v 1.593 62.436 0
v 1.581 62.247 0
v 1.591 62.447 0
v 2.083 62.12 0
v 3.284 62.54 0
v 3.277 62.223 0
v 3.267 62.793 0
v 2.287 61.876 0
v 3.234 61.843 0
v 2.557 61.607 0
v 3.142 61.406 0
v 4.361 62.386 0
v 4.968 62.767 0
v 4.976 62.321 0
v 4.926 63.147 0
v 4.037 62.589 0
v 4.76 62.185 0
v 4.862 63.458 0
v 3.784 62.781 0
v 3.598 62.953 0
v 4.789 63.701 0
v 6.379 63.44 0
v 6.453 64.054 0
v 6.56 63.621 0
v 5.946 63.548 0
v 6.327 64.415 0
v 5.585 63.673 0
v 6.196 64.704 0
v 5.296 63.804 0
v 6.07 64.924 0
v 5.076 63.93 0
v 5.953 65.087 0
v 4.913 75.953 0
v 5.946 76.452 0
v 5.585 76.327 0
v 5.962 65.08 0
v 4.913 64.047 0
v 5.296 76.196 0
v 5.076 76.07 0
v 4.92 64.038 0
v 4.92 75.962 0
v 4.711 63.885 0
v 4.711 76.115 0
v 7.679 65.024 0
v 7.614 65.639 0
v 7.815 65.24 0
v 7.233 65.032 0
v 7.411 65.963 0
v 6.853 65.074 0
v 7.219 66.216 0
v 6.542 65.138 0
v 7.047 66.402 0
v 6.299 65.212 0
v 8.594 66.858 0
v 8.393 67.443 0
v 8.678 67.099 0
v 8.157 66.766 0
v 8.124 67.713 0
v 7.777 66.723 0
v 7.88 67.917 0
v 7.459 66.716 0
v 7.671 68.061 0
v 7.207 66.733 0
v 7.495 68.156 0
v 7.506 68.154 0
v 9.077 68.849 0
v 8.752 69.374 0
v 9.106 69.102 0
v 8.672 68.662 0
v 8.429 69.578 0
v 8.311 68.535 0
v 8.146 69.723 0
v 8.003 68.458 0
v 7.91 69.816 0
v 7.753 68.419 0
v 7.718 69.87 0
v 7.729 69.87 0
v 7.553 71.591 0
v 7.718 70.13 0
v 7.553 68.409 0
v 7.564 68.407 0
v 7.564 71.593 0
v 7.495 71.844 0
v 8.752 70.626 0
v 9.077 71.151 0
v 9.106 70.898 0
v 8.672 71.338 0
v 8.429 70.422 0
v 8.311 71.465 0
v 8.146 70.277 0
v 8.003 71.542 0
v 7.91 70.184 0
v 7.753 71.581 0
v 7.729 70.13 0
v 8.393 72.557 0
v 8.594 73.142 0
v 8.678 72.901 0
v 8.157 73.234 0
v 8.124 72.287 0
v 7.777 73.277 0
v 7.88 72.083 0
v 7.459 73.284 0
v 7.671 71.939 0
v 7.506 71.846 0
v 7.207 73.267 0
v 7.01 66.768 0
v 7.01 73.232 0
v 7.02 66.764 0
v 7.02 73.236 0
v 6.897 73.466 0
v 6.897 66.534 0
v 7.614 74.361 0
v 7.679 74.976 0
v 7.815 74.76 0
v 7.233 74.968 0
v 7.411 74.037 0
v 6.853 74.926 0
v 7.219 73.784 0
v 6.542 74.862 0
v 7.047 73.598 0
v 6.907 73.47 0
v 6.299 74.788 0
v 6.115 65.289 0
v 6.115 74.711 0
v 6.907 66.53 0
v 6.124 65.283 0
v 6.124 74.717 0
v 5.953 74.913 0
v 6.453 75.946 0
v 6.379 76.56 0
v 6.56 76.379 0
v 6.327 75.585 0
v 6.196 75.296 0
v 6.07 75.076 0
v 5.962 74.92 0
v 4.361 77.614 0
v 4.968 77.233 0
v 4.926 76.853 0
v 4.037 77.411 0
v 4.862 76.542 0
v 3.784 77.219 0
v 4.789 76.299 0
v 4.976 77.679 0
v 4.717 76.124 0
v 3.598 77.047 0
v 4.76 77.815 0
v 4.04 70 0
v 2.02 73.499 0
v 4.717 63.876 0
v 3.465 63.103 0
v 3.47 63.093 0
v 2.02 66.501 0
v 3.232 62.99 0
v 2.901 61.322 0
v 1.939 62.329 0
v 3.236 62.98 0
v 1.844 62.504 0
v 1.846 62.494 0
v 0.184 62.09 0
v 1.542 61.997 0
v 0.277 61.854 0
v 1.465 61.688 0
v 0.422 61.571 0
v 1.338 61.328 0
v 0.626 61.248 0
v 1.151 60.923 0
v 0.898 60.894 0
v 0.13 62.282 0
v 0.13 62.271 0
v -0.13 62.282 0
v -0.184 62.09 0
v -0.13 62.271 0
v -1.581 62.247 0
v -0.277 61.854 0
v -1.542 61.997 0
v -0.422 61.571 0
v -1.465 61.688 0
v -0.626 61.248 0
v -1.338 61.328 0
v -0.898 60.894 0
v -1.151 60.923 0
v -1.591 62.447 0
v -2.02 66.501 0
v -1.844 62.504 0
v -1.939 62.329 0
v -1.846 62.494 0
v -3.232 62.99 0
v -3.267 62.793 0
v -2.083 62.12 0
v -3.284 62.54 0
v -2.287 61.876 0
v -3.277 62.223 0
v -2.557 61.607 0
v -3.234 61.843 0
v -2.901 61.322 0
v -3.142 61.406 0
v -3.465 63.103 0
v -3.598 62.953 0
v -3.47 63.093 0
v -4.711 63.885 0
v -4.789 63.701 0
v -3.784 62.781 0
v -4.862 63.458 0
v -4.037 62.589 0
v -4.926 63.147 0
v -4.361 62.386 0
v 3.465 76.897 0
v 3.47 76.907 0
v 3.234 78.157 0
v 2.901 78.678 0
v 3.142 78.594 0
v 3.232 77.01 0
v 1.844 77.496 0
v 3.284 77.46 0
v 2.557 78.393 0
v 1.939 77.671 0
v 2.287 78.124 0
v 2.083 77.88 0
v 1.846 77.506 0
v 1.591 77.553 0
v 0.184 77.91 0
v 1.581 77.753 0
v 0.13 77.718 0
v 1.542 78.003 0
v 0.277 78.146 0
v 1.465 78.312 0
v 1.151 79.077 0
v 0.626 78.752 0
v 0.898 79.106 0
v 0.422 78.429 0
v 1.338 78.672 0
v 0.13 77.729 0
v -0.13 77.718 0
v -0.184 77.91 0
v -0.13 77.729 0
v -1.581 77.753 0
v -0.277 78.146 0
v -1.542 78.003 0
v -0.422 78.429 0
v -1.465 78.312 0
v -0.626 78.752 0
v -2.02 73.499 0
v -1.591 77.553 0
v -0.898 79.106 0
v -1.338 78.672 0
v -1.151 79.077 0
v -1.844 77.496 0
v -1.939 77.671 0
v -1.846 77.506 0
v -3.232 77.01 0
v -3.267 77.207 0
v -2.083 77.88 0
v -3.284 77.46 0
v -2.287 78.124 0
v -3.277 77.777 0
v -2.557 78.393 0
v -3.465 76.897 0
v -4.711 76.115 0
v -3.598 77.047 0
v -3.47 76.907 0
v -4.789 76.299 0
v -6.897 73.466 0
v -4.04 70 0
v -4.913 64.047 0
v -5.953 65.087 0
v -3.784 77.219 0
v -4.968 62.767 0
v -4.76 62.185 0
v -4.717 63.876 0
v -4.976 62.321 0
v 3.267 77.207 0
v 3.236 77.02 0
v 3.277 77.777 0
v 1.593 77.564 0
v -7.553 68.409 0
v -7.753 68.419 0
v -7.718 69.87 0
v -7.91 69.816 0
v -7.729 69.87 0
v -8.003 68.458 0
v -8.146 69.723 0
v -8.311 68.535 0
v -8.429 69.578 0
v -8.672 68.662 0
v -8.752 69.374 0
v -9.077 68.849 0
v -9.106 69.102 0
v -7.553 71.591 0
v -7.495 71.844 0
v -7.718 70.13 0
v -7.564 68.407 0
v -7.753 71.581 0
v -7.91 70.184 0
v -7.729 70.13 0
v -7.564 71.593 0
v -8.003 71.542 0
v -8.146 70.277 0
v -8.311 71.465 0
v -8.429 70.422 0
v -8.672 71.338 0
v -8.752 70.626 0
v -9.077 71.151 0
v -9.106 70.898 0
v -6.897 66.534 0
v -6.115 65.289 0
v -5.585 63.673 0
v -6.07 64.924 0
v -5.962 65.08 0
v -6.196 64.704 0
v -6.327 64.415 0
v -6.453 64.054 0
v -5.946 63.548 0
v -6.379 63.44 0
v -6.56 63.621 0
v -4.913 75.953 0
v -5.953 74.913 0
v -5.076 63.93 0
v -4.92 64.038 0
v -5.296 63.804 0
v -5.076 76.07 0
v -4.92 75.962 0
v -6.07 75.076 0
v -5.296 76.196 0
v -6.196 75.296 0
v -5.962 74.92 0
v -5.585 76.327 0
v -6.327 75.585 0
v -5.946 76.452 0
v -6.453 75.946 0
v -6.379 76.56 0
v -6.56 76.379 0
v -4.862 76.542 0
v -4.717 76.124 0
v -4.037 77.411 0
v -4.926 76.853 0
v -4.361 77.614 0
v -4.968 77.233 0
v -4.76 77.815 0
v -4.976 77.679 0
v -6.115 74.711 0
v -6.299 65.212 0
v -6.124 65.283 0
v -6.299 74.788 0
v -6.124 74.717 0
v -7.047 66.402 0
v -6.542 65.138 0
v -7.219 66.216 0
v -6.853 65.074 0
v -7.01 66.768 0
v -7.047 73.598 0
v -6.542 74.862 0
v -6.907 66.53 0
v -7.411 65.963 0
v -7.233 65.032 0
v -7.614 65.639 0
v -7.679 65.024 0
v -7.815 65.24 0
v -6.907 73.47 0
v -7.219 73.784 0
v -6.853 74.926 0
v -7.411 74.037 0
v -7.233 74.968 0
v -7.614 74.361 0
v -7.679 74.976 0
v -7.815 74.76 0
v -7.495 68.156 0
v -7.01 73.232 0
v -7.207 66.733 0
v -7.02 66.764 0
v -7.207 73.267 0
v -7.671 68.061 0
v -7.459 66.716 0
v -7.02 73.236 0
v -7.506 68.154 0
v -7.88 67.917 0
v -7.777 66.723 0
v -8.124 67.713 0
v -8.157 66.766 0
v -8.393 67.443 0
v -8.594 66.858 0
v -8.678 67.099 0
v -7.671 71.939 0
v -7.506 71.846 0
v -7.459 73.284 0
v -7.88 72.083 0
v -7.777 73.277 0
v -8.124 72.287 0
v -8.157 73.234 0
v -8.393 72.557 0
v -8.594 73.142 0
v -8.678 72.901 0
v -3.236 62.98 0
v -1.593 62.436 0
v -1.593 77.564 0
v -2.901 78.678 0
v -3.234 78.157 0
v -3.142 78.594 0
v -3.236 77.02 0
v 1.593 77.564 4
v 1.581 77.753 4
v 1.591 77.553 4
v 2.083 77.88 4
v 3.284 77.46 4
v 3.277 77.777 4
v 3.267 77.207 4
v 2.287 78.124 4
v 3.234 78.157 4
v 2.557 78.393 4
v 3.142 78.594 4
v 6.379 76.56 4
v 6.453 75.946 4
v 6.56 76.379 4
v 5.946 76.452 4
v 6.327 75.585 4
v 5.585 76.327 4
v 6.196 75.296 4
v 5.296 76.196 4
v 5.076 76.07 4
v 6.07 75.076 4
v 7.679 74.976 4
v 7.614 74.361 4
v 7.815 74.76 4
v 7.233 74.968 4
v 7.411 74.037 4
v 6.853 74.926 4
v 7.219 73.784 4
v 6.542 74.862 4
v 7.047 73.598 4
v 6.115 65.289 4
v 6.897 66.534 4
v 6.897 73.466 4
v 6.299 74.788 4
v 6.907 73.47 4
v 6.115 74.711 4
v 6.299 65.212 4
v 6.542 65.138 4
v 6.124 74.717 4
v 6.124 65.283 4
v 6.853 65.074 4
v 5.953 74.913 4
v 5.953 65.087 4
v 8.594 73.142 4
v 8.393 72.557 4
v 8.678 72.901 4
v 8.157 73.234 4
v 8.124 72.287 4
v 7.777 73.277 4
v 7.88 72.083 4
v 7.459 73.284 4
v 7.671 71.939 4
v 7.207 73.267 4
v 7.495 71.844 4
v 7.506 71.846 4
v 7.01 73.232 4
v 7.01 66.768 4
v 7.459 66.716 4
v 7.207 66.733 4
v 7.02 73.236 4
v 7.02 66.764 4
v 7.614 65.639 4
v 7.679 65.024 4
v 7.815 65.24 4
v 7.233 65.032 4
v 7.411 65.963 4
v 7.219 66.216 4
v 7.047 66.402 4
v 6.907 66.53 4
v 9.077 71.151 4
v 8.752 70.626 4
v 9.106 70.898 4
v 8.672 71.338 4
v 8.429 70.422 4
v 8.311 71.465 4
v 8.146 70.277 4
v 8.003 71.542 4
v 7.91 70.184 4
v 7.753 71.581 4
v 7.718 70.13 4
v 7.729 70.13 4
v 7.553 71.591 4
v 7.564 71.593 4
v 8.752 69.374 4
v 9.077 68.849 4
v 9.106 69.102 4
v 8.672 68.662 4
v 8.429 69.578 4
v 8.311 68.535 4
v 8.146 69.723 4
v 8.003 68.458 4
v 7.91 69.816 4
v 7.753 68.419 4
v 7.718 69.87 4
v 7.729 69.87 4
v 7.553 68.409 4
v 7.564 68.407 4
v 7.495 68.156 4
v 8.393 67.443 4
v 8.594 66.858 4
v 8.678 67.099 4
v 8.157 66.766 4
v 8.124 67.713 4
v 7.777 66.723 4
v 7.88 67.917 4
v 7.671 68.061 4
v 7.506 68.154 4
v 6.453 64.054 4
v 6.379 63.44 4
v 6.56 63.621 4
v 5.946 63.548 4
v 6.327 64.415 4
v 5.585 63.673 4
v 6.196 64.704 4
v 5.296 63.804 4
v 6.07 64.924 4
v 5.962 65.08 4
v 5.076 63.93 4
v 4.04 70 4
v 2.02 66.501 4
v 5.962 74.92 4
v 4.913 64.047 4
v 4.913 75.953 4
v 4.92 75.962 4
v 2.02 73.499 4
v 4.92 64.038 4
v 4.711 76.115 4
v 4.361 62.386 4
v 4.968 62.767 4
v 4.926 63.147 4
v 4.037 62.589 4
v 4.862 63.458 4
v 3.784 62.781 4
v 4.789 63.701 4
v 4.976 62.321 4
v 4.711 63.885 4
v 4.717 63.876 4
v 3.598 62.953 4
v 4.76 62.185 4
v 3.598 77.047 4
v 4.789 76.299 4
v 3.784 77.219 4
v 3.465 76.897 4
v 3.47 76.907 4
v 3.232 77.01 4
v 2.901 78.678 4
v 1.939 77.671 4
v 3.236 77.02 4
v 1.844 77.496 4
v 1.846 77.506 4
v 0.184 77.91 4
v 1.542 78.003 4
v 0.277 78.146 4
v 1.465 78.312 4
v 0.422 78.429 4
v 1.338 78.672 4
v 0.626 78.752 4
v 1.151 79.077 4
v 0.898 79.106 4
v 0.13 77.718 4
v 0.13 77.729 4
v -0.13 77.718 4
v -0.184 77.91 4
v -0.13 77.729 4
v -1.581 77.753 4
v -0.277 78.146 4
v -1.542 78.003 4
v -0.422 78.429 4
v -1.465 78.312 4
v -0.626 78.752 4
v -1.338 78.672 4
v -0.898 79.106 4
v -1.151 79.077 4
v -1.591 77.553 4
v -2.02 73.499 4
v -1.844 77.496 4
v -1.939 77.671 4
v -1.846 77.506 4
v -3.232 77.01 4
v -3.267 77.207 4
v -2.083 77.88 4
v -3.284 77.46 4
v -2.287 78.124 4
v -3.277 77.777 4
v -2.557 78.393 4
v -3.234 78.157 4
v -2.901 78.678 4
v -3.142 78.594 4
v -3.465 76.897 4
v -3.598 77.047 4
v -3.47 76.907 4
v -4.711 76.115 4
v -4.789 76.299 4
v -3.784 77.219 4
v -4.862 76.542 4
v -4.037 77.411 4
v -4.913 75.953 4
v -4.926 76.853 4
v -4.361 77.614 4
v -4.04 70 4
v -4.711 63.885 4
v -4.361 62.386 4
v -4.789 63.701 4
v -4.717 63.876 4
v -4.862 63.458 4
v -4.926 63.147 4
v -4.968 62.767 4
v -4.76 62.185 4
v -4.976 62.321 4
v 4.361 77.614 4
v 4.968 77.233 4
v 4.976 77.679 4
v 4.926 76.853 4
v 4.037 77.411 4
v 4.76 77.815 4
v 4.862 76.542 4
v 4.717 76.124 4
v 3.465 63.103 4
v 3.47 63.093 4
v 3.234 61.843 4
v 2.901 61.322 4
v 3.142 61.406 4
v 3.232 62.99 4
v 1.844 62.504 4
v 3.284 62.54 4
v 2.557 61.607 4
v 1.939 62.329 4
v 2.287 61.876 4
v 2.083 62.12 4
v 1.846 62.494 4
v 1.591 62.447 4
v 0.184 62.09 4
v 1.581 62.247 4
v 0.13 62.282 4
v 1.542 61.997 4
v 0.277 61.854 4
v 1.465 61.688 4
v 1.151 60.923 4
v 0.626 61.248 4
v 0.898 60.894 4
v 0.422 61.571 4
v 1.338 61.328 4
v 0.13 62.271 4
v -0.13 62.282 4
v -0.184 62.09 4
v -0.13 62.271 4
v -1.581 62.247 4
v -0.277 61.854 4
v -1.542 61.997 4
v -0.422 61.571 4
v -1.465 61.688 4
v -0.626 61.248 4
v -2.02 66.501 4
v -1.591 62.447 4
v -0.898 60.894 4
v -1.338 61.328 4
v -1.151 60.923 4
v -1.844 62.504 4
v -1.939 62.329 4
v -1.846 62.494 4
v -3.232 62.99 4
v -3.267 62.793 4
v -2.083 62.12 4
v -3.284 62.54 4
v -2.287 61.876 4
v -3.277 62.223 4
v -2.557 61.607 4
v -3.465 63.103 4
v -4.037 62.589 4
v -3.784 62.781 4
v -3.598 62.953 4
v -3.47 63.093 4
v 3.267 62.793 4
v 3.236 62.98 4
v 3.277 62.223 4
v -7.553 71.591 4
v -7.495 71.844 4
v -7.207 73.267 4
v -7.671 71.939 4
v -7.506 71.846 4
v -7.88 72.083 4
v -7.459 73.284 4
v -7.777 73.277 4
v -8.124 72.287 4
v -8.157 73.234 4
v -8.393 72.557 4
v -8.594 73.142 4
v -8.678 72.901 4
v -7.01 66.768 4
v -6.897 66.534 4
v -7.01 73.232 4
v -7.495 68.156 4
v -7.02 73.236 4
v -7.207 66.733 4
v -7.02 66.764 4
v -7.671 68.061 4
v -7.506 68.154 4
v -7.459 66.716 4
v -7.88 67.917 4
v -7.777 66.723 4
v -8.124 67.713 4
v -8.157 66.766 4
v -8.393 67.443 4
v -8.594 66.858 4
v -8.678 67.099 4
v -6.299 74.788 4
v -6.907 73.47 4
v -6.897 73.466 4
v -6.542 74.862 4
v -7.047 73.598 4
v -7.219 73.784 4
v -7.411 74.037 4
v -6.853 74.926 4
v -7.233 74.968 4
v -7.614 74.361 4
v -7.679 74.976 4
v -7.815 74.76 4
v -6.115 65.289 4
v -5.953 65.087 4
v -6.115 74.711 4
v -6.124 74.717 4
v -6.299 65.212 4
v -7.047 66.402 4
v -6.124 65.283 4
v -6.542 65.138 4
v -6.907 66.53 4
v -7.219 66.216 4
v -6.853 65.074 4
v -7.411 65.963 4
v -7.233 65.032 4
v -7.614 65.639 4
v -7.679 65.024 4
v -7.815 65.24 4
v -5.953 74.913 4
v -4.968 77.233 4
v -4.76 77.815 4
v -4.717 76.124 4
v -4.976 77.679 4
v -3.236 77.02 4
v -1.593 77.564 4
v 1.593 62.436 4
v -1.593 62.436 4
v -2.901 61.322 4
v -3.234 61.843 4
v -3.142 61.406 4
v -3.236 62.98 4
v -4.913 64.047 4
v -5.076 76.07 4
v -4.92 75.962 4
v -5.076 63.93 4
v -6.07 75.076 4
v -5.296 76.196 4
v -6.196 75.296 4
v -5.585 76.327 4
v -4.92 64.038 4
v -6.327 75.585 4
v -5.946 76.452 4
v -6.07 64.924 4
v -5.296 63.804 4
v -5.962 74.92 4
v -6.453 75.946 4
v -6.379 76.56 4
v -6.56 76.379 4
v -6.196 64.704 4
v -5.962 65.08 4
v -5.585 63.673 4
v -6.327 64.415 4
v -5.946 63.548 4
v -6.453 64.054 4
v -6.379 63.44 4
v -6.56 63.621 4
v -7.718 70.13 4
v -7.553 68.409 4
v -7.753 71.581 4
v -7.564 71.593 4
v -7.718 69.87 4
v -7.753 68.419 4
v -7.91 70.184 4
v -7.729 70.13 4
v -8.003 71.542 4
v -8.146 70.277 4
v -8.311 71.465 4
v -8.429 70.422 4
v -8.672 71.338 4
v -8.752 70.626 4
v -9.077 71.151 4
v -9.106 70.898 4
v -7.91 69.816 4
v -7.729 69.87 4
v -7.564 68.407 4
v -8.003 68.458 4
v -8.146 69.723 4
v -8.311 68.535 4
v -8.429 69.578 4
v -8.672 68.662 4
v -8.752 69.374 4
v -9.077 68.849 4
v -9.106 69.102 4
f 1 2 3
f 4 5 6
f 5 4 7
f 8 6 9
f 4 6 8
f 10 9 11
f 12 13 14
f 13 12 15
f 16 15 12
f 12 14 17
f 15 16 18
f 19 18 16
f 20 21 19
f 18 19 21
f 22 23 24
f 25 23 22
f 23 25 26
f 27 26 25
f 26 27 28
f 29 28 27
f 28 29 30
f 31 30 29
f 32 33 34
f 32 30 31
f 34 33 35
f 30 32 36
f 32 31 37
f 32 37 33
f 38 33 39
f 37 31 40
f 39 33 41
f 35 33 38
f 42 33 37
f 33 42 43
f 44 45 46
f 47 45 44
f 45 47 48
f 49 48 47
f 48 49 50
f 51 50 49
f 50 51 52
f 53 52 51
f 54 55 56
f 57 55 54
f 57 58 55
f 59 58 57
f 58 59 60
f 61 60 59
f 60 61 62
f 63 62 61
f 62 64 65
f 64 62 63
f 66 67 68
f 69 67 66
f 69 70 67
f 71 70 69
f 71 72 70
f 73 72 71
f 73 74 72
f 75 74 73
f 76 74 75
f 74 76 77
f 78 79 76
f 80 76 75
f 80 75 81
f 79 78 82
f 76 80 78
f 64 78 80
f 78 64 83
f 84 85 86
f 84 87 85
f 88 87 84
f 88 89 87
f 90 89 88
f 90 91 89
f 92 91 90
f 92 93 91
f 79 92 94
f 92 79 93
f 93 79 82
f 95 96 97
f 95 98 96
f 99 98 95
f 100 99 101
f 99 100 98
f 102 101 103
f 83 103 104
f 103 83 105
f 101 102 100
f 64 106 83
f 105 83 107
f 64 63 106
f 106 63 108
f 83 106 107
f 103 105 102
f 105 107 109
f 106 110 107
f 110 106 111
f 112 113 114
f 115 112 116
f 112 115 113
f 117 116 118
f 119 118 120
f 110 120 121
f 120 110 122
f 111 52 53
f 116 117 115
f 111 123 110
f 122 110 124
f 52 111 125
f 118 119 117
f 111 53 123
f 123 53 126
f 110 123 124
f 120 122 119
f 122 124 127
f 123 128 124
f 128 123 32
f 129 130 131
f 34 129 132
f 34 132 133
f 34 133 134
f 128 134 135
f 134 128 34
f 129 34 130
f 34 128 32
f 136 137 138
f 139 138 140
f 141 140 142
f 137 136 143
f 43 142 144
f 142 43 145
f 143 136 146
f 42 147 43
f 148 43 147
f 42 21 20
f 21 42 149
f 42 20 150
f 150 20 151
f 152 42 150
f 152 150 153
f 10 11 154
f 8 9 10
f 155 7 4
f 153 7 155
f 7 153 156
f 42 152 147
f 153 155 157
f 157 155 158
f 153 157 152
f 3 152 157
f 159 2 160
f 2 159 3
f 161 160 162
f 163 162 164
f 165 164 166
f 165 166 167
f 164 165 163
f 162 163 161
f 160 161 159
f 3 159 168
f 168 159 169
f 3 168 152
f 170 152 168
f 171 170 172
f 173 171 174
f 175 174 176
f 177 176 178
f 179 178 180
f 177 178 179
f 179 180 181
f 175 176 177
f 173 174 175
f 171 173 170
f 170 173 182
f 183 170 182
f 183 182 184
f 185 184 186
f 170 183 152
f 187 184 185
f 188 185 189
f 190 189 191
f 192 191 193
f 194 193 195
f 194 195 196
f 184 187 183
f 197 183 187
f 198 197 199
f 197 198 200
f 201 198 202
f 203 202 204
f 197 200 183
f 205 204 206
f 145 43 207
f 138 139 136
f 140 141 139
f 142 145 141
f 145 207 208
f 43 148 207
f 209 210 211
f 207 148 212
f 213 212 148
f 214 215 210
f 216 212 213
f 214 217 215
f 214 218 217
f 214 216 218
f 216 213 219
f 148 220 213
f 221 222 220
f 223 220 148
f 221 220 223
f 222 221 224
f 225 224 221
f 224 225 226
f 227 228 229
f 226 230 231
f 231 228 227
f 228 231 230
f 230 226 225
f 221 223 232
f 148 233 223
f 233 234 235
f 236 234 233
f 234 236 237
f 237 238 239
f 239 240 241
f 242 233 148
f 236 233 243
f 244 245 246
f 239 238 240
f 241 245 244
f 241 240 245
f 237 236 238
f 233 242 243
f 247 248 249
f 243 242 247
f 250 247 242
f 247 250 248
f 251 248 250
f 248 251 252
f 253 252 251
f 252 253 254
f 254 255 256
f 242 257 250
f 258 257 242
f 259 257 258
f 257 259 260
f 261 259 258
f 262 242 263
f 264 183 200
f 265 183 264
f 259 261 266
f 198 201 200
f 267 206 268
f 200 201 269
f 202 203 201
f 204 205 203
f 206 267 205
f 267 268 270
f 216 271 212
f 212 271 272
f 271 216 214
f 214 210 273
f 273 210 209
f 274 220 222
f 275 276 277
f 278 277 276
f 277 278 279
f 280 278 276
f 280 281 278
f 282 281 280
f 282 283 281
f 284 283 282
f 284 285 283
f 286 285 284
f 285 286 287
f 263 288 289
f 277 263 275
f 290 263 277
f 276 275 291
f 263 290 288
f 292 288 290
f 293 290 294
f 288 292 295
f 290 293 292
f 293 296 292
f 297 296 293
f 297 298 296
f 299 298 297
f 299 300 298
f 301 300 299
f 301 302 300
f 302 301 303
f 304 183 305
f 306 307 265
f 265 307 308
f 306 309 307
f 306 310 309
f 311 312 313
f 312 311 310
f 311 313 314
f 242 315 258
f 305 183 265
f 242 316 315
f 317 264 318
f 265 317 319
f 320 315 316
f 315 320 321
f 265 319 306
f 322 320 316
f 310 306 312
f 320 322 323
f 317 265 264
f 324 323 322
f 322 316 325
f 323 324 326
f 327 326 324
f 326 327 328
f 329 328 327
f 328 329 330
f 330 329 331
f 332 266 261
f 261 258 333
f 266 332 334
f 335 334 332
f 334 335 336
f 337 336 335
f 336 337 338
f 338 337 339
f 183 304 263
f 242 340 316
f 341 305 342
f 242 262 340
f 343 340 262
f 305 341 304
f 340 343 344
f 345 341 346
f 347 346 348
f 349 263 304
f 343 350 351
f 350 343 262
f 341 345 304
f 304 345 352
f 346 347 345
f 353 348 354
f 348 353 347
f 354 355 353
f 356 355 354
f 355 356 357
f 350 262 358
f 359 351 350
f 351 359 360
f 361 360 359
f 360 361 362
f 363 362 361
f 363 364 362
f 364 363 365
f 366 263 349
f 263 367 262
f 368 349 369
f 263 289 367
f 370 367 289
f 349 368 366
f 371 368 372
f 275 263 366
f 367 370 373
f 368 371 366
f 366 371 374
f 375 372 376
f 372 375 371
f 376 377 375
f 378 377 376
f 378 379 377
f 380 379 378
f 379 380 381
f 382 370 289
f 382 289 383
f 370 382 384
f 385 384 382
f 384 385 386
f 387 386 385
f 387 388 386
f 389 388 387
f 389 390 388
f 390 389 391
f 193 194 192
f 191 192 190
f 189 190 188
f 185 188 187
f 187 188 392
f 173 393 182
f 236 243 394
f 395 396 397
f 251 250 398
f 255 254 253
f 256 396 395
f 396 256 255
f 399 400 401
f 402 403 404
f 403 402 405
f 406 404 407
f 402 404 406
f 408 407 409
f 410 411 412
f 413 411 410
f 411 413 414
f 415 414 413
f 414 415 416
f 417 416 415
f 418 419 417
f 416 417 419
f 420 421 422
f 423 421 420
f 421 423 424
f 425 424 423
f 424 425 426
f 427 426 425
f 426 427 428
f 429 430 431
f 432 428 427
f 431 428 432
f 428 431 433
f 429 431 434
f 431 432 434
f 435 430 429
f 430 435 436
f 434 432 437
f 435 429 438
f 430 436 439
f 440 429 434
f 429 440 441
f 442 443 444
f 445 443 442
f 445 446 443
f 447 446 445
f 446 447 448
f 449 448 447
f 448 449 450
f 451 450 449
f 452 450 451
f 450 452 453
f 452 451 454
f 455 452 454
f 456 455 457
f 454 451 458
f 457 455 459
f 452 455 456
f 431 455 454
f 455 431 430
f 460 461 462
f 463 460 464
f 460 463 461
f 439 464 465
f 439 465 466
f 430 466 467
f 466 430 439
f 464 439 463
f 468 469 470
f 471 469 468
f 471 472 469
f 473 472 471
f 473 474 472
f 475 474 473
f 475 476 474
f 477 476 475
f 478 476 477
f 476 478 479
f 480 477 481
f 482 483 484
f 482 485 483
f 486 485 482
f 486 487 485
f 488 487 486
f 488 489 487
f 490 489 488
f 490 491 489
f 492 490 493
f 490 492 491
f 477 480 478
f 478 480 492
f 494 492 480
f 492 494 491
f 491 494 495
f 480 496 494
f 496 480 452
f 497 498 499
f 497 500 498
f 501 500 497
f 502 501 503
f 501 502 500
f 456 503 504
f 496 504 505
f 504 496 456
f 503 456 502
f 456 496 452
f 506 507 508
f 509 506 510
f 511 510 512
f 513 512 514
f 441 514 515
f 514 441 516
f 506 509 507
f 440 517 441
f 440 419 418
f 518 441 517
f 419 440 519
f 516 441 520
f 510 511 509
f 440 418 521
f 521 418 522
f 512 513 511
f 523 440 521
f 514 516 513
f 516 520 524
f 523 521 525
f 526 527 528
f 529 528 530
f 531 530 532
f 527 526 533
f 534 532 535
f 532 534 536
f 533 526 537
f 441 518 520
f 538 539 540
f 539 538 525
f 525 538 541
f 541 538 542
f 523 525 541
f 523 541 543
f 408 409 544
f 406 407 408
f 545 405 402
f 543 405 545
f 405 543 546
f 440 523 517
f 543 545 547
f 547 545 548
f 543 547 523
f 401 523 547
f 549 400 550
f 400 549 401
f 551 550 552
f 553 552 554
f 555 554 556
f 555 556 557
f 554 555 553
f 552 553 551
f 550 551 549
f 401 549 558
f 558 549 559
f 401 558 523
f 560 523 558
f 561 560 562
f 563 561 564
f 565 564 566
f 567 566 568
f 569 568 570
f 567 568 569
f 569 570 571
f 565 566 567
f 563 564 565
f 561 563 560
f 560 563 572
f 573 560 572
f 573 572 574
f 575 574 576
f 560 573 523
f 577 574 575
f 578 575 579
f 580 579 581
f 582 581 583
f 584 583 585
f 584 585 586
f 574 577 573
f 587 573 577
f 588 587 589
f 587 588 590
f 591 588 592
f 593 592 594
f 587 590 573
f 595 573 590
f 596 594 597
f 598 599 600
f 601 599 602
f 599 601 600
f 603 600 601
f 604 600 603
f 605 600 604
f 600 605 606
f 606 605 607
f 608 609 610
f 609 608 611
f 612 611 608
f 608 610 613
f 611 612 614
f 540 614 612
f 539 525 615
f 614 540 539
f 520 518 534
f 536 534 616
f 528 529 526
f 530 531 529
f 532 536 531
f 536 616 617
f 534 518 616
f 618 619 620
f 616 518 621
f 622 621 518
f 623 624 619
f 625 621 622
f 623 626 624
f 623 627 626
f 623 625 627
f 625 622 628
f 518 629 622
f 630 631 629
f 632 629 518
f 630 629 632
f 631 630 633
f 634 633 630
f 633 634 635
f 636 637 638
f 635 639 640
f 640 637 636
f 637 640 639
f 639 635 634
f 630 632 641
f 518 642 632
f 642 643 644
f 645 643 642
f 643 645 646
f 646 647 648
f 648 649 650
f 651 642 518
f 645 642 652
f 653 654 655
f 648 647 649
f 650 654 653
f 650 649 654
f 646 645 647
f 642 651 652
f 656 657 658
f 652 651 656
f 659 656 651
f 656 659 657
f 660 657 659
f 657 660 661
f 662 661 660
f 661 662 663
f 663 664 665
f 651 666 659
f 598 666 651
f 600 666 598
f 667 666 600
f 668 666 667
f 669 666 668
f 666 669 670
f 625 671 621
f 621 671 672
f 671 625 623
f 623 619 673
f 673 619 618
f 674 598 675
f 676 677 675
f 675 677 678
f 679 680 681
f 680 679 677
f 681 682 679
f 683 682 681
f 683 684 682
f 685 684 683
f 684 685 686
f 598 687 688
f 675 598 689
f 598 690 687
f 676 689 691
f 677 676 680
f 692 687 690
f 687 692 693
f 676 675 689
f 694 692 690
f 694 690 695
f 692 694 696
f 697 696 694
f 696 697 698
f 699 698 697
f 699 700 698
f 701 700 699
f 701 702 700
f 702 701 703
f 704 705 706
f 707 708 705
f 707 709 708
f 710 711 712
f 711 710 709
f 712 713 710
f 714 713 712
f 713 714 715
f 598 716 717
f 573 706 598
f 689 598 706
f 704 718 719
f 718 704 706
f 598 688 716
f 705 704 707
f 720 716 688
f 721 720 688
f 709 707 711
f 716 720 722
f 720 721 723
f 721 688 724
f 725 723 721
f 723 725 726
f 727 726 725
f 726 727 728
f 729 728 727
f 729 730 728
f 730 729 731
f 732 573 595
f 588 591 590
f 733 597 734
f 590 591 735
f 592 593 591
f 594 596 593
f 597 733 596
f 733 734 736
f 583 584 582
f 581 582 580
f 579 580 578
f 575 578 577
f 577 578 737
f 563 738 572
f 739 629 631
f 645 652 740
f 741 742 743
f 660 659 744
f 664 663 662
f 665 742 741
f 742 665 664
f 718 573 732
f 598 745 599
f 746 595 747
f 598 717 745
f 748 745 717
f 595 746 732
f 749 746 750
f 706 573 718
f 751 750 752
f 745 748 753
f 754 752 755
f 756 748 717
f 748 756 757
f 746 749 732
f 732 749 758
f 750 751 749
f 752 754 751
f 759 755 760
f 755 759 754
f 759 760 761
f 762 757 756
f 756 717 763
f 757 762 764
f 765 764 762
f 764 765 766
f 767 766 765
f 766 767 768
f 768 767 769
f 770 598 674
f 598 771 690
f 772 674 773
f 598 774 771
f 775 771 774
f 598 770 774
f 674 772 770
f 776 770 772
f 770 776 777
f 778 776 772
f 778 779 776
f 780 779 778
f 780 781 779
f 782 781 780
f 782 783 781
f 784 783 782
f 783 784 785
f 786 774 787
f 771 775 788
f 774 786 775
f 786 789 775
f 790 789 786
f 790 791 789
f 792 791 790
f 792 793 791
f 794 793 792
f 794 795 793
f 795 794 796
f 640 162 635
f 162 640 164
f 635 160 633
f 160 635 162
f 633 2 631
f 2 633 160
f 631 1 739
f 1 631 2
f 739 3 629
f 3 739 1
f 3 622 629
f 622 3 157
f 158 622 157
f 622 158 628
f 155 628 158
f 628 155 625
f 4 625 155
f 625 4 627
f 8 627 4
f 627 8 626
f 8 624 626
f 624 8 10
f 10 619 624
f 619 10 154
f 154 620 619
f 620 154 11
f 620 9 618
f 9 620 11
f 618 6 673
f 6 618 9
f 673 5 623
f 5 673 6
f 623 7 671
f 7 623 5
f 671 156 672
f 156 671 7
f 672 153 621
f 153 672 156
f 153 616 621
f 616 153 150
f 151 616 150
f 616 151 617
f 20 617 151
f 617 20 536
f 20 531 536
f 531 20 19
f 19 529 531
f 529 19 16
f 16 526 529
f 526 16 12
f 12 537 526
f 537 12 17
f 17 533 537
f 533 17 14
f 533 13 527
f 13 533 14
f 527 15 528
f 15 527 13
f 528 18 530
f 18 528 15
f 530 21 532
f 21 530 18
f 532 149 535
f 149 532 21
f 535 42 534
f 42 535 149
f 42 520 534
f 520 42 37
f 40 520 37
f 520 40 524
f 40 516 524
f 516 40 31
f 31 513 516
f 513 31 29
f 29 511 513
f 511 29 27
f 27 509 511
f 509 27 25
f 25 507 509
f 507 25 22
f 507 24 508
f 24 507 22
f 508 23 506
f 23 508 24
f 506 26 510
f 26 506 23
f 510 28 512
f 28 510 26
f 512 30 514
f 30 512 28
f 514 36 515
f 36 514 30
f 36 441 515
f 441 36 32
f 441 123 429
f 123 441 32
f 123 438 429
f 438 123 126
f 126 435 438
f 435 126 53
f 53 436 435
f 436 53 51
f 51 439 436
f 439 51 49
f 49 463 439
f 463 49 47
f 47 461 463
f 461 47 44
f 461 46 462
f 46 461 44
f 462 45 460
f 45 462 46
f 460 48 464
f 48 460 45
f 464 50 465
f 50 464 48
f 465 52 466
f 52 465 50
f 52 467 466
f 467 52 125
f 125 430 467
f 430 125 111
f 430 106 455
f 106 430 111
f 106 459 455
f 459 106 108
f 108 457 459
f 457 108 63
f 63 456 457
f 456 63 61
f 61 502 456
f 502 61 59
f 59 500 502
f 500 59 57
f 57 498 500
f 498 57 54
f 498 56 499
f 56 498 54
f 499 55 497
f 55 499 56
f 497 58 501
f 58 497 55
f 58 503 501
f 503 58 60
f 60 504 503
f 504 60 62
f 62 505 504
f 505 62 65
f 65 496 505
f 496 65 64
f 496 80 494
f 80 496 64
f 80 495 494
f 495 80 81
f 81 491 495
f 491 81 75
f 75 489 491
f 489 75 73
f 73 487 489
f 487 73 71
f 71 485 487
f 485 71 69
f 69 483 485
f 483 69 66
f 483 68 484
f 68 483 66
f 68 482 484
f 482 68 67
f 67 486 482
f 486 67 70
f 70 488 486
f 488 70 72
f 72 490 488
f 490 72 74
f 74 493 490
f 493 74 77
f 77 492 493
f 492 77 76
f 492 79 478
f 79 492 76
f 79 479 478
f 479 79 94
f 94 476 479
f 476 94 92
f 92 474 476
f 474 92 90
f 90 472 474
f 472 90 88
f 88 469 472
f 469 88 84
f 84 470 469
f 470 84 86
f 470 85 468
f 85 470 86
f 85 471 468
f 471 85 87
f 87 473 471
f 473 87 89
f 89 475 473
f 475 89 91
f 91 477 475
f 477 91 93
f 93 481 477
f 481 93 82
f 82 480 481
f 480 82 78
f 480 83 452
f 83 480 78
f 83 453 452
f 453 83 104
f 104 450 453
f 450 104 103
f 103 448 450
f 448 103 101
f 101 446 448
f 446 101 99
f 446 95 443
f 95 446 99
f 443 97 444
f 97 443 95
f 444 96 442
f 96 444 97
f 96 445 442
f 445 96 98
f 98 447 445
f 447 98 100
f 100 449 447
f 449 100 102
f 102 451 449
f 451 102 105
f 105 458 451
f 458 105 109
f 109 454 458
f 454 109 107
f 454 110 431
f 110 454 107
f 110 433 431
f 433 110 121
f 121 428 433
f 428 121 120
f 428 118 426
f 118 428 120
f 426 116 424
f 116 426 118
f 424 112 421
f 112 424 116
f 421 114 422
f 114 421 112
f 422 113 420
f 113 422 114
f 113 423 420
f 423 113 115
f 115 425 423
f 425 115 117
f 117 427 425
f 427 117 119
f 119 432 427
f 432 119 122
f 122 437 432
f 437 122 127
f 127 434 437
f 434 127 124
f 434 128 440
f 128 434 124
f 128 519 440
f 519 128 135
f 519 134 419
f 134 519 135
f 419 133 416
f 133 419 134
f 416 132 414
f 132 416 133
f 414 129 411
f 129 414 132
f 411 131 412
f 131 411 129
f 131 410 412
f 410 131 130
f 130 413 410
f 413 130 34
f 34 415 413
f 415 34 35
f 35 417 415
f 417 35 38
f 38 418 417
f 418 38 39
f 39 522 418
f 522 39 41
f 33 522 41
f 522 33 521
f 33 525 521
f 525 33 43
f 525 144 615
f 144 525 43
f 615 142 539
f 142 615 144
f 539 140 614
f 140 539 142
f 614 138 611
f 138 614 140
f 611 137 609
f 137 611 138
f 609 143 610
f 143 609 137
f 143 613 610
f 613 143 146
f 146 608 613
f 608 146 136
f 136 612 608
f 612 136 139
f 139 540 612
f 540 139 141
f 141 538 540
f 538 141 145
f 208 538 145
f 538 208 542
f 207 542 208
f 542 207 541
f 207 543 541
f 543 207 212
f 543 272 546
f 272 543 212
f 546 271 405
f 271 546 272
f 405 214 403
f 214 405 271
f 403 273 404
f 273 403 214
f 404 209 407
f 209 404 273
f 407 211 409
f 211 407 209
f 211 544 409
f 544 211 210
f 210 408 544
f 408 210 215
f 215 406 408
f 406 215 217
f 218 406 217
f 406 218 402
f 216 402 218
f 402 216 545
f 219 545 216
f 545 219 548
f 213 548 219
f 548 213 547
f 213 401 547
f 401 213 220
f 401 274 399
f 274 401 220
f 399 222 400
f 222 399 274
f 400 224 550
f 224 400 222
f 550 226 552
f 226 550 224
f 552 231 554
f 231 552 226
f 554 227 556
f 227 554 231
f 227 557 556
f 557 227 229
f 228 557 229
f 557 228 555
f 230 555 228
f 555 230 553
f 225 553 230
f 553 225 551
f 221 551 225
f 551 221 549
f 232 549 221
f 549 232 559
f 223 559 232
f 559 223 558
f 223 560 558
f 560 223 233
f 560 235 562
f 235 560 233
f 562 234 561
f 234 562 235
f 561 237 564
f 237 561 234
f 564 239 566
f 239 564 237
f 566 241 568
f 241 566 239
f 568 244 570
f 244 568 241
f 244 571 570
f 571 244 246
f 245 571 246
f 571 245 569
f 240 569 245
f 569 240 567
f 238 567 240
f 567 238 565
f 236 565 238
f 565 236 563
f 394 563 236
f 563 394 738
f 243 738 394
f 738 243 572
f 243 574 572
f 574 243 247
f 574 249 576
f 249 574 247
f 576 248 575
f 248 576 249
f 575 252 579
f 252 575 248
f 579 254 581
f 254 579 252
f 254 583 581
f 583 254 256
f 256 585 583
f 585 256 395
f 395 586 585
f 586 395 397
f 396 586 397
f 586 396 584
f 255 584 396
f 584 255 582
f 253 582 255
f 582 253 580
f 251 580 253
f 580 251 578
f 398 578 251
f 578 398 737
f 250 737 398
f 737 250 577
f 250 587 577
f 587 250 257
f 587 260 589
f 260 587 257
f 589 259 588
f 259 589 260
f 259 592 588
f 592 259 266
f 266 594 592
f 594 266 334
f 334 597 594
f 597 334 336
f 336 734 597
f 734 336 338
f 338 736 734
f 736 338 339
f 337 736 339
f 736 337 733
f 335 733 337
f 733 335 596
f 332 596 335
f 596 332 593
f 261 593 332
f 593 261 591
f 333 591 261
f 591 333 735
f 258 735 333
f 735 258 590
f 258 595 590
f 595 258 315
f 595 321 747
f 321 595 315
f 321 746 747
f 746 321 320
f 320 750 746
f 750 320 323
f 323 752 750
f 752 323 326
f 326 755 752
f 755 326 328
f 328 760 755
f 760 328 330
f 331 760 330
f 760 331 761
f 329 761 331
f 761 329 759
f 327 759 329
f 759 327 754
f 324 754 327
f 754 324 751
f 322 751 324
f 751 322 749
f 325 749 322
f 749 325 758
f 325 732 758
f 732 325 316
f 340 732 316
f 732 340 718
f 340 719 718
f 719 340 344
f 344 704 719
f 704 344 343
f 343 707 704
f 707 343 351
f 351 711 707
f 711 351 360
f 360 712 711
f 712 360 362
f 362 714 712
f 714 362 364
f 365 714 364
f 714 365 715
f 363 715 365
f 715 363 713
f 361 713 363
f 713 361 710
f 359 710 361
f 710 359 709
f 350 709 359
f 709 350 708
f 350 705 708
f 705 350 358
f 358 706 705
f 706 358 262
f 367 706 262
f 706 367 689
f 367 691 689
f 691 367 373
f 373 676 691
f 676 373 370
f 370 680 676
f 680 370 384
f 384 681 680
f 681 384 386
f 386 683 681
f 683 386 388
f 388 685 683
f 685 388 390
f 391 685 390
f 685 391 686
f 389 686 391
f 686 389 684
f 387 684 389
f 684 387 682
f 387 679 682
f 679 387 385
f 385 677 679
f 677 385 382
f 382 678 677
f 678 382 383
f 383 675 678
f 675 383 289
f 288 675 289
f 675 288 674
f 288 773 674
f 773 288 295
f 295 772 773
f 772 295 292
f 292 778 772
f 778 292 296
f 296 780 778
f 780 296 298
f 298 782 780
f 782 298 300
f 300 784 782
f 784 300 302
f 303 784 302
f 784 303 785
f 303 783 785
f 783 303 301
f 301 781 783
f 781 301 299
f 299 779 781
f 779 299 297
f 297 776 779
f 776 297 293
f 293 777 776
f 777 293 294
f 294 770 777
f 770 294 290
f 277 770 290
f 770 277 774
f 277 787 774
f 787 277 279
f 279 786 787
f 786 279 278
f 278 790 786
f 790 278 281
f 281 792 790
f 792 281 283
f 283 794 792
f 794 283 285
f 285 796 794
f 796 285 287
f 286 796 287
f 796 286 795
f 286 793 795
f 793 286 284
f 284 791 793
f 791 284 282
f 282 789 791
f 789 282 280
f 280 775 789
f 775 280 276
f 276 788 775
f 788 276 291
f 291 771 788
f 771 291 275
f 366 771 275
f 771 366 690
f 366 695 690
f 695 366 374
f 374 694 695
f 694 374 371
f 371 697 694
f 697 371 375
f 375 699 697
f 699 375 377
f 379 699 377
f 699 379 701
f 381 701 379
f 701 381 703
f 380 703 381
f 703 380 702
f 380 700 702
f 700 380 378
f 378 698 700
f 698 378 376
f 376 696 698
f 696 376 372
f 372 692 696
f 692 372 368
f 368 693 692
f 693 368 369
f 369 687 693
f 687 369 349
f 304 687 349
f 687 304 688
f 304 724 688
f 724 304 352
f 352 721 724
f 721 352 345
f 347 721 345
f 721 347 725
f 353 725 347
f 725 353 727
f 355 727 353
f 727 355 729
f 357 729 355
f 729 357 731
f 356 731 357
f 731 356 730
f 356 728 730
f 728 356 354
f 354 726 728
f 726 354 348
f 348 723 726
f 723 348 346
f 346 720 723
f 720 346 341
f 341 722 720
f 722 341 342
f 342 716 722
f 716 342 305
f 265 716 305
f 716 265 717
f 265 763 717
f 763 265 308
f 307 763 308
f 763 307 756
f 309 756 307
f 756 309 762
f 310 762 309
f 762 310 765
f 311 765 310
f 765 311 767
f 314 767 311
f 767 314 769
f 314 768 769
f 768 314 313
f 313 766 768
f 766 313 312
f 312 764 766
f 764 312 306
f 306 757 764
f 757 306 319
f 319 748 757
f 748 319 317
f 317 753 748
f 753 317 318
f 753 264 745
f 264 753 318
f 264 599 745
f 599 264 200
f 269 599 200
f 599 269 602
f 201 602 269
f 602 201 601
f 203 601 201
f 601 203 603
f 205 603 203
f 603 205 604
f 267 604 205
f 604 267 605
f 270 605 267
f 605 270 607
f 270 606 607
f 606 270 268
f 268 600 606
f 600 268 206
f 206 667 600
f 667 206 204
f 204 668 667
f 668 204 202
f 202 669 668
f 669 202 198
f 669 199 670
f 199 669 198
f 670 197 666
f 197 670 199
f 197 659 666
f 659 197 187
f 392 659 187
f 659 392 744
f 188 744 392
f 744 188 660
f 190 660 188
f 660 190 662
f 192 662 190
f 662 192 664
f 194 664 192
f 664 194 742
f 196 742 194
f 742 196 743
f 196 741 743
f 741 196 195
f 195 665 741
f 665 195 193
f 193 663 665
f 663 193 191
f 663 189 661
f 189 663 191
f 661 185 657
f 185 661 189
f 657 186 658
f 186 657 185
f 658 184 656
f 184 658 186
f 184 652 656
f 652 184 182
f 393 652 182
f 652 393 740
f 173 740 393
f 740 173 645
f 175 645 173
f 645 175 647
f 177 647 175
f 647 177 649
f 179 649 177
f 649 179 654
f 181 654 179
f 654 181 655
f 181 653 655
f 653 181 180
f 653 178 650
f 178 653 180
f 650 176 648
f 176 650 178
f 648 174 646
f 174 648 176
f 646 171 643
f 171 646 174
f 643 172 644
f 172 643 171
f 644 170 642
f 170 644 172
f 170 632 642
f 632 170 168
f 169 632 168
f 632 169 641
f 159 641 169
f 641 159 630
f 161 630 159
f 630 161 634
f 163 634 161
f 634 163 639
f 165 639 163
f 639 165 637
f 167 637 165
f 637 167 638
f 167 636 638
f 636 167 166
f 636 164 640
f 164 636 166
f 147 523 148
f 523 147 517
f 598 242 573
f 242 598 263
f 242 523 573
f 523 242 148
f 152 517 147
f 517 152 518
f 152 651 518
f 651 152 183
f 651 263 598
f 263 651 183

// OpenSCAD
// file: ModuleKatzenklappe.scad
// //////////////////////////////////
// Module für Katzenklappenverschluss
// //////////////////////////////////

module armHorn (laenge, breite, dicke) {
    difference() {
    union() {
    translate ([0,-breite/2,0])
    cube([laenge,breite,dicke], false);
    translate ([laenge,0,0])
    cylinder(dicke,r=breite/2, false); 
    }
    translate ([laenge*1.0,0,0])
    loch(radius=2,tiefe= dicke + 1);
/*    translate ([laenge*0.6,0,dicke-1])
    letter("Achim");
    translate ([laenge*0.6,0,1])
    rotate([0,180,0])
    letter("Tim");
    translate ([laenge*0.2,0,0])
    loch(radius=2,tiefe= dicke + 1);
*/    }
};

module mittelRad (breite) {
    difference() {
        cylinder(breite,r=12.5, false);
        cylinder(breite,r=2.0, false);
        
/*        translate([0,0,breite])
        gear (
            toothNo = 100, 
            toothWidth = 1, 
            toothHeight  = 2, 
            thickness = breite,
            holeRadius = 5,
            holeSides = 6
        );
        translate ([-25,0,0])
        loch(radius=5,tiefe=breite + 1);
        translate ([25,0,0])
        loch(radius=5,tiefe=breite + 1);
        translate ([0,-25,0])
        loch(radius=5,tiefe=breite + 1);
        translate ([0,25,0])
        loch(radius=5,tiefe=breite + 1);
*/        } 
};

module loch (radius, tiefe) {
        cylinder(tiefe,r=radius, false);   
};

module zapfen (breite,tiefe) {
        cube([breite,breite,tiefe], true);   
};

module wand (breite) {
    difference() {
        cube([breite,120,5], false);  
        translate ([5,5,0])
        cube([breite/3-10,110,5], false);  
        translate ([breite/3+5,5,0])
        cube([breite/3-10,110,5], false);  
        translate ([2*breite/3+5,5,0])
        cube([breite/3-10,110,5], false);  
    } 
};

module lArm(laenge, breite, dicke) {
    difference() {
        union() {
            armHorn(laenge=laenge, breite=breite, dicke=dicke);
            rotate(90) armHorn(laenge=laenge, breite=breite, dicke=dicke);
            cylinder(dicke,r=breite/2, false); 
           }
            translate ([0,0,0])
            zapfen(breite= 3, tiefe = dicke * 2);
        }
};

module mittelAchse(laenge, radius_achse, zapfen_breite, zapfen_laenge, breite) {
    difference() {
        union() {
            translate ([0,0,zapfen_laenge /2])
            zapfen(breite= zapfen_breite, tiefe=zapfen_laenge);   
            translate ([0,0,zapfen_laenge])
            cylinder(laenge,r = radius_achse, false, $fn=6);
            translate ([0,0,laenge+(1.5*zapfen_laenge)])
            zapfen(breite= zapfen_breite, tiefe=zapfen_laenge);   
        }
        cylinder (laenge+6,r=0.9, false);
    }
};

module achse(laenge, radius_achse) {
    difference() {
        cylinder(laenge,r = radius_achse, false, $fn=6);
        cylinder (laenge+6,r=0.9, false);
    }
};


module tooth(width, thickness, height){
  scale([width/5,thickness/5,height/10]){
    difference(){
      translate([-2.5,0,0])
      cube([5,5,10]);
      translate([5+1.25-2.5,0-1,0])
      rotate([0,-14.0362434,0])
        cube([5,5+2,12]);
      translate([0-1.25-2.5,0+5+1,0])
      rotate([0,-14.0362434,180])
        cube([5,5+2,12]);
    }
  }
}
module gear(toothNo, toothWidth, toothHeight, thickness,holeRadius,holeSides){
  radius = (toothWidth*1.7*toothNo)/3.141592653589793238/2;
  rotate([-90,0,0])
  difference(){
    union(){
      for(i=[0:toothNo]){
        rotate([0,(360/toothNo)*i,0])
        translate([0,0,radius-0.5])
          tooth(toothWidth,thickness,toothHeight);
      }
      translate([0,thickness,0])
      rotate([90,0,0])
        cylinder(r=radius, h=thickness);
    }
  translate([0,thickness+1,0])
  rotate([90,0,0])
    cylinder(r=holeRadius,h=thickness+2,$fn=holeSides);
  }
}

font = "Liberation Sans";


letter_size = 5;
letter_height = 3;


module letter(l) {
  // Use linear_extrude() to make the letters 3D objects as they
  // are only 2D shapes when only using text()
  linear_extrude(height = letter_height) {
    text(l, size = letter_size, font = font, halign = "center", valign = "center", $fn = 16);
  }
}


module 9g_motor(){
	difference(){			
		union(){
			color("SteelBlue") cube([23,12.5,22], center=true);
			color("SteelBlue") translate([0,0,5]) cube([32,12,2], center=true);
			color("SteelBlue") translate([5.5,0,2.75]) cylinder(r=6, h=25.75, $fn=20, center=true);
			color("SteelBlue") translate([-.5,0,2.75]) cylinder(r=1, h=25.75, $fn=20, center=true);
			color("SteelBlue") translate([-1,0,2.75]) cube([5,5.6,24.5], center=true);		
			color("white") translate([5.5,0,3.65]) cylinder(r=2.35, h=29.25, $fn=20, center=true);				
		}
		translate([10,0,-11]) rotate([0,-30,0]) cube([8,13,4], center=true);
		for ( hole = [14,-14] ){
			translate([hole,0,5]) cylinder(r=2.2, h=4, $fn=20, center=true);
		}	
	}
}

module sg90() {
	color("blue") difference() {
		union() {
			translate([0,0,22.5/2]) cube([22.5,12.2,22.5], center=true);
			translate([0,0,16.75]) cube([32.2,12.2,2], center=true);

			translate([0,0,22.5-1]) {
				hull() {
					translate([-1,0,0]) cylinder(d=5.5, h=4+1);
					translate([1,0,0]) cylinder(d=5.5, h=4+1);
				}

				translate([5.5,0,0]) cylinder(d=11.6, h=4+1);
			}

		}	

		translate([-32.5/2+2,0,16.75-2]) {
			cylinder(d=2, h=2+2);
			translate([-2,0,2]) cube([4,1,2+2], center=true);
		}
		translate([32.5/2-2,0,16.75-2]) {
			cylinder(d=2, h=2+2);
			translate([2,0,2]) cube([4,1,2+2], center=true);
		}
	}
	color("white") translate([5.5,0,22.5-1+4]) {
		difference() {
			cylinder(d=4.8, h=3+1);
			translate([0,0,1]) cylinder(d=2, h=4);
		}
	}
}

module stuetze (hoehe) {
    difference() {
        translate ([0,0,0])
        cube([hoehe,20,3], false);
        translate ([hoehe*0.8,10,0])
        cylinder(21,r=1.5, center=true);
        translate ([hoehe*0.7,10,0])
        cylinder(21,r=1.5, center=true);
        translate ([hoehe*0.6,10,0])
        cylinder(21,r=1.5, center=true);
        translate ([hoehe*0.5,10,0])
        cylinder(21,r=1.5, center=true);
    }
}

module balken (laenge) {
    difference() {
        translate ([0,-10,0])
        cube([5,laenge,3], false);
    }
/*    translate ([2.5,25,2.5])
        rotate(-90,90,0)
        letter("Design by Achim & Tim 2018");    
*/
}

module boden(laenge, breite) {
    difference() {
        cube([5,laenge,breite], false);
        rotate([0,90,0])
        translate ([-breite/2,laenge*0.1,0])
        cylinder(6,r=1.5, center=false);
        rotate([0,90,0])
        translate ([-breite/2,laenge*0.5,0])
        cylinder(6,r=1.5, center=false);
        rotate([0,90,0])
        translate ([-breite/2,laenge*0.9,0])
        cylinder(6,r=1.5, center=false);
    }
}

module wand(hoehe, anzahl, abstand) {
    for (a =[0:abstand:anzahl*abstand])
        translate ([0,a,0])
        stuetze(hoehe);
    translate ([0,10,0])
    balken(anzahl*abstand);
    translate ([hoehe-5,10,0])
    balken(anzahl*abstand);
}

module halterung(hoehe) {
    // Bodenplatte
    cube([5,22,36],false);
    difference(){
        // Motorhalterung
        cube([hoehe,22,15.5],false);
        translate ([hoehe-5,10,11])
        cylinder(6,r=0.5, center=false);
        translate ([10,10,11])
        cylinder(6,r=0.5, center=false);
    }
}
// main file
include <ModuleKatzenklappe.scad>;
include <gears.scad>;

zahnradabstand = 25;
gehaeusehoehe = 45;

// Maße eines L-Arms
lArmBreite  = 10;
lArmLaenge  = 18;
lArmDicke   = 3;

// Maße der Mittelachse
mittelAchseLaenge       = 21;
mittelAchseRadius       = 4;
mittelAchseZapfenBreite = 2.6;
mittelAchseZapfenLaenge = 3;
mittelAchseRadBreite    = 5;

// Zahnrad 3 mit 6-kantlock


difference() {
    translate ([0,70,0])
    rotate([0,0,1/56*360])
    gear (number_of_teeth=28,
			circular_pitch=109.8,
            hub_diameter=7,
            bore_diameter=1.8,
			rim_width=2,
			rim_thickness=4,
			gear_thickness=4,
			hub_thickness=4,
			circles=0);
    translate ([0,70,-10])
    scale (1.01) mittelAchse(laenge = mittelAchseLaenge, radius_achse =     mittelAchseRadius, zapfen_breite = mittelAchseZapfenBreite, zapfen_laenge = mittelAchseZapfenLaenge, breite = mittelAchseRadBreite);
    translate ([0,70,-10])
    cylinder(20,r=2,true);
}


/*
// Verschluss
translate([gehaeusehoehe*0.7,10,0])


// Verschlussriegel unten
lArm(laenge=lArmLaenge,breite=lArmBreite,dicke=lArmDicke);

translate([0,0,0])
// Mittelachse
mittelAchse(laenge = mittelAchseLaenge, radius_achse = mittelAchseRadius, zapfen_breite = mittelAchseZapfenBreite, zapfen_laenge = mittelAchseZapfenLaenge, breite = mittelAchseRadBreite);
    
// Verschlussriegel oben
//        translate ([0,0,mittelAchseLaenge+lArmDicke])
rotate(-90) lArm(laenge=lArmLaenge,breite=lArmBreite,dicke=lArmDicke);

translate ([70,70,3.3])
rotate([0,-90,0]) 
rotate([0,0,30]) 
achse(laenge = 10, radius_achse = mittelAchseRadius);

*/
